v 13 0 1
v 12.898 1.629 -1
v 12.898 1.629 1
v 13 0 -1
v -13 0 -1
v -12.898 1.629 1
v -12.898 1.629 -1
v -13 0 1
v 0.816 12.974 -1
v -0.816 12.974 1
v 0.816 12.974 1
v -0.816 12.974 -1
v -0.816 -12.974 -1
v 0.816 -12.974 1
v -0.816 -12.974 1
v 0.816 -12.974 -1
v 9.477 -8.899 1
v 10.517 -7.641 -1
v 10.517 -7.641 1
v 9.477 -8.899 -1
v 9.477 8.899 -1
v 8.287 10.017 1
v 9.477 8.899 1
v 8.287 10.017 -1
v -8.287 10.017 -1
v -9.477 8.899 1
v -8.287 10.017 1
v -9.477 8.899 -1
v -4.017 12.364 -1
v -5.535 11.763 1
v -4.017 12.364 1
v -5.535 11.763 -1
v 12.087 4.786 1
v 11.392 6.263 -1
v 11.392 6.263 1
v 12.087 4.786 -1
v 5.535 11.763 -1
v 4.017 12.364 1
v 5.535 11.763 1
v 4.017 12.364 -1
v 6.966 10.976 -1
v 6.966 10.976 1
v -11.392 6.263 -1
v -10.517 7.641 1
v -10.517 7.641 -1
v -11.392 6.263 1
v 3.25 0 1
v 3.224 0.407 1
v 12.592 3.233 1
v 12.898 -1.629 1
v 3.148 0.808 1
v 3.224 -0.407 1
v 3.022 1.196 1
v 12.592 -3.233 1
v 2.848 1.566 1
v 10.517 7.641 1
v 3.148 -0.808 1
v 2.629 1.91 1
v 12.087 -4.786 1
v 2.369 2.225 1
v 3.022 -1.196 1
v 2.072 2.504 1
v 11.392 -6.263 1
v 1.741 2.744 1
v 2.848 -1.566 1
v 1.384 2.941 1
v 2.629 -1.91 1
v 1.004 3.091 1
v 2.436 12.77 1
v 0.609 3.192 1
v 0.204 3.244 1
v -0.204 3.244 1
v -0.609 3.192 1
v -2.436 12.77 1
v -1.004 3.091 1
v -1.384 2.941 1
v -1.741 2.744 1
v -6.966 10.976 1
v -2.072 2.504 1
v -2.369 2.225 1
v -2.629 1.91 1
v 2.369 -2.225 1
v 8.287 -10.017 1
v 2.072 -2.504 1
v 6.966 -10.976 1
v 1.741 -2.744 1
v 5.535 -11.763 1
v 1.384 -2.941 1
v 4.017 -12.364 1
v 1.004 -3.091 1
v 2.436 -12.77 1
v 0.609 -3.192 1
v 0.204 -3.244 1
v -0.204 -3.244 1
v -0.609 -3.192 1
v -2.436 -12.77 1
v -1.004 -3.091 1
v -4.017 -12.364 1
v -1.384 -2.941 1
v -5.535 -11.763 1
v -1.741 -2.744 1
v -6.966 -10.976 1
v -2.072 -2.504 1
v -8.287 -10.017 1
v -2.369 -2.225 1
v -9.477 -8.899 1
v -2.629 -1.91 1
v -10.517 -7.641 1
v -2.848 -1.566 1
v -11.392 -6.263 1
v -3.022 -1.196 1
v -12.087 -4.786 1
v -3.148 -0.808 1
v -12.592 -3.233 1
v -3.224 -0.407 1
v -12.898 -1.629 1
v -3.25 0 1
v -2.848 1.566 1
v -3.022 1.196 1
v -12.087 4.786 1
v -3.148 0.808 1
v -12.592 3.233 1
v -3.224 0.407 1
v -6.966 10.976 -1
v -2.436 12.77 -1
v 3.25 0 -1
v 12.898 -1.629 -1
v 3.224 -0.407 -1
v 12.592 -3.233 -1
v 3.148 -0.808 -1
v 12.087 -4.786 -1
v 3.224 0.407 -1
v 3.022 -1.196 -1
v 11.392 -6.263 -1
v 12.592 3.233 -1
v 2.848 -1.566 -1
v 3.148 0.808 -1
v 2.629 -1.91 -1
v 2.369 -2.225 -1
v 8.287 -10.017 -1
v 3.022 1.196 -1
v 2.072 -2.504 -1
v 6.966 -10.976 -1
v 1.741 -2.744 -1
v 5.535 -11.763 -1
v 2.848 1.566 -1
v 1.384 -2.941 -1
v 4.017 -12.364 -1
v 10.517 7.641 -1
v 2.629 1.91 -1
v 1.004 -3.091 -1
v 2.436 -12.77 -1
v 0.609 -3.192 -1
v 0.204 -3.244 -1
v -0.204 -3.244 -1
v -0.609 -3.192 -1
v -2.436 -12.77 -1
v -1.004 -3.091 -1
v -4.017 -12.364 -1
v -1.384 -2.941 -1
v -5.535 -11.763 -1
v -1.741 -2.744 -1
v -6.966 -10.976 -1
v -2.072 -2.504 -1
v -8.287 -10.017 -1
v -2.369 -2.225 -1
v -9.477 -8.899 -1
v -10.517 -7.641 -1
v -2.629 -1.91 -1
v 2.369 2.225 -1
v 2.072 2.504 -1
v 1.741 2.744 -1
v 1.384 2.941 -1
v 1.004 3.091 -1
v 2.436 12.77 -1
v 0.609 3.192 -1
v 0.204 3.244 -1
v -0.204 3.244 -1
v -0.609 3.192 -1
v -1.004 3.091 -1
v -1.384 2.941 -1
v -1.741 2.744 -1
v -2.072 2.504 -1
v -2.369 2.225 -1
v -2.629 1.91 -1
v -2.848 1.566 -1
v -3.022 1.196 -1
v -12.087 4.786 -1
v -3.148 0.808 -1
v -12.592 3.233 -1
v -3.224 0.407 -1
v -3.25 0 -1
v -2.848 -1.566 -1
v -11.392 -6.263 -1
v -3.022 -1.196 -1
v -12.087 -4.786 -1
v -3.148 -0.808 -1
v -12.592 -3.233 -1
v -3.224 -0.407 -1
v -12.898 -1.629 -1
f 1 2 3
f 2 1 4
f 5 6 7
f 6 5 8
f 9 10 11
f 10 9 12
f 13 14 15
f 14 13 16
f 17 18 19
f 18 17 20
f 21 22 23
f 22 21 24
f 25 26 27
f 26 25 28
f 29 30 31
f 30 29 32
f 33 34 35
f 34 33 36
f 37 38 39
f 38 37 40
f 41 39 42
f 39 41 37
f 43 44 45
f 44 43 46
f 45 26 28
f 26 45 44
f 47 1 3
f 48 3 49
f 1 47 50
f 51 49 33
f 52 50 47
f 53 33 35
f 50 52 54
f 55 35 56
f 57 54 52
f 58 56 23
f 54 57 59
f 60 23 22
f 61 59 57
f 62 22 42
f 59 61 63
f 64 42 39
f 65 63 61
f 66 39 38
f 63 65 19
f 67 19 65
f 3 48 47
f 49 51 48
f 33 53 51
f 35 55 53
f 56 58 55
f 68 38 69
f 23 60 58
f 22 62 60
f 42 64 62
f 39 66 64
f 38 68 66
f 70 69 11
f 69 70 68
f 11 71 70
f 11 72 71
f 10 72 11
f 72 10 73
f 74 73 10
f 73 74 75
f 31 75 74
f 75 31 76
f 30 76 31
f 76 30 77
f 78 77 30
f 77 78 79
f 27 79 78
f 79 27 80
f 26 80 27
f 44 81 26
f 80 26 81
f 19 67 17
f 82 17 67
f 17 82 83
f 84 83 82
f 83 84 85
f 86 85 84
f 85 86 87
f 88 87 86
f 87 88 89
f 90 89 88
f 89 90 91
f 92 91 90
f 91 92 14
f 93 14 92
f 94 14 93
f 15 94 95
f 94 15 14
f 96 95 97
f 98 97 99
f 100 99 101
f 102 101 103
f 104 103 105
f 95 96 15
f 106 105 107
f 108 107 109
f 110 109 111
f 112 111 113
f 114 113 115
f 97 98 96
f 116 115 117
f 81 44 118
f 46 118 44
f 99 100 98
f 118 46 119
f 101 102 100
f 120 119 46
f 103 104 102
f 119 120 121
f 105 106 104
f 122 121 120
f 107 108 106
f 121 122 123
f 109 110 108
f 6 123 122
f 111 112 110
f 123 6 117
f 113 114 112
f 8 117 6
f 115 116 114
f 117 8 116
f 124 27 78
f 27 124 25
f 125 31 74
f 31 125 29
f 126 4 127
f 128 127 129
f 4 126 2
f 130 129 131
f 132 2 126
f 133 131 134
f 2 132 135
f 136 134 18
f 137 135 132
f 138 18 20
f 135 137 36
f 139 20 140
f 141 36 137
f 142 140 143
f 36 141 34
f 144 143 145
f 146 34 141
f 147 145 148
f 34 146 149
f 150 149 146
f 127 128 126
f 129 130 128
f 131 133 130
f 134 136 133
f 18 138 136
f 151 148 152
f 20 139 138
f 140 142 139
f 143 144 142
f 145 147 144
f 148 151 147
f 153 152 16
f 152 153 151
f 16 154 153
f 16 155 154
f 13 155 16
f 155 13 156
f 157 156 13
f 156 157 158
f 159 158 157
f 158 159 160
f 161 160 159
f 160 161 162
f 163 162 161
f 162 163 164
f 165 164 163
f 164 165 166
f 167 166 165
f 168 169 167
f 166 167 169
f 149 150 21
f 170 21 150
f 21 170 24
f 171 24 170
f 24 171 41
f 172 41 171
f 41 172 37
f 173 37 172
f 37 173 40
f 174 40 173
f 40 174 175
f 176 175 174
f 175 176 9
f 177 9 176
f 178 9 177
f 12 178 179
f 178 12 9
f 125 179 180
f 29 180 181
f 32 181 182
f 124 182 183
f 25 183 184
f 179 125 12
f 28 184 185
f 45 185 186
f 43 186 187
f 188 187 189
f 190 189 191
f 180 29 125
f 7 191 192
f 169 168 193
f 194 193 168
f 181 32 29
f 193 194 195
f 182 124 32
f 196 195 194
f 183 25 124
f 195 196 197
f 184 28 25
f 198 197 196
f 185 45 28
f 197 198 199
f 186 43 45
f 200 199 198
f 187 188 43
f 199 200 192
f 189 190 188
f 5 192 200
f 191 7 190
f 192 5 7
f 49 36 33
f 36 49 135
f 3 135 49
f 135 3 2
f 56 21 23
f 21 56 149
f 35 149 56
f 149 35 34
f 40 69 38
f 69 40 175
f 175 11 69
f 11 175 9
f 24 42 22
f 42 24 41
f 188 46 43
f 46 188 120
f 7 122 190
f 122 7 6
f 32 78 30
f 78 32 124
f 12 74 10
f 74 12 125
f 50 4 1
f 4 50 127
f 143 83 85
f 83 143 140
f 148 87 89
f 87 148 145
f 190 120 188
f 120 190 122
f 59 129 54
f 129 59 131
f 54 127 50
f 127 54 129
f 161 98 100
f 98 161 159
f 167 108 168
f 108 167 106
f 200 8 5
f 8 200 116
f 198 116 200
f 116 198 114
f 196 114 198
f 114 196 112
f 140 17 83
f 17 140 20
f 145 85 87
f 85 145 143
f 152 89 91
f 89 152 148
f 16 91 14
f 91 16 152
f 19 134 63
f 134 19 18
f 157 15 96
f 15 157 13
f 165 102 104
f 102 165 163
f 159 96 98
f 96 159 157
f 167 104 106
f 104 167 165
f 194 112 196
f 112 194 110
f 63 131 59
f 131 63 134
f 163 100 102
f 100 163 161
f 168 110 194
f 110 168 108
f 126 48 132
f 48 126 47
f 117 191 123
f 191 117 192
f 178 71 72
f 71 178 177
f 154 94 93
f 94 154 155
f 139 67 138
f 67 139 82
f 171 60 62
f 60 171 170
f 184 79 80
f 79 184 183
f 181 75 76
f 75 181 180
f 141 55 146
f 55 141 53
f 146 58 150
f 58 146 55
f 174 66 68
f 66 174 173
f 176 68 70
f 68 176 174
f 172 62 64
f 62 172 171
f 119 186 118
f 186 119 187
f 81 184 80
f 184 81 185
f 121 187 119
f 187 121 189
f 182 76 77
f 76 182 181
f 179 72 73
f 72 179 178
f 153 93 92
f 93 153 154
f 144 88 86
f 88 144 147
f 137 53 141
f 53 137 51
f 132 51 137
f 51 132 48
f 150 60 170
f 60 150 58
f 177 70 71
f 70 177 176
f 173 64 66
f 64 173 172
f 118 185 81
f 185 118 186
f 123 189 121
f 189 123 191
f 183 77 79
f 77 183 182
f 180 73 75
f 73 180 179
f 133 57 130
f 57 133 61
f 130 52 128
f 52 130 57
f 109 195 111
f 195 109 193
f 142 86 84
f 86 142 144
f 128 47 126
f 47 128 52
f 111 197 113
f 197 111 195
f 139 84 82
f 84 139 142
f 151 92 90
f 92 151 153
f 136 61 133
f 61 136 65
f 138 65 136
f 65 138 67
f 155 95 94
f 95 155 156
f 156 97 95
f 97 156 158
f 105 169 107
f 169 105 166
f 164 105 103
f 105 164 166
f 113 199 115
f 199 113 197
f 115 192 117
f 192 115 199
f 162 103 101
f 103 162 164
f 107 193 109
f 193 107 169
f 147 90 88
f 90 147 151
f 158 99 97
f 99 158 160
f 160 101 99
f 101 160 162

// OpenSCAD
$fn = 50;


difference() {
	union() {
		translate(v = [0, 0, -1.0000000000]) {
			cylinder(h = 2, r = 13.0000000000);
		}
	}
	union() {
		translate(v = [0, 0, -100.0000000000]) {
			cylinder(h = 200, r = 3.2500000000);
		}
	}
}
